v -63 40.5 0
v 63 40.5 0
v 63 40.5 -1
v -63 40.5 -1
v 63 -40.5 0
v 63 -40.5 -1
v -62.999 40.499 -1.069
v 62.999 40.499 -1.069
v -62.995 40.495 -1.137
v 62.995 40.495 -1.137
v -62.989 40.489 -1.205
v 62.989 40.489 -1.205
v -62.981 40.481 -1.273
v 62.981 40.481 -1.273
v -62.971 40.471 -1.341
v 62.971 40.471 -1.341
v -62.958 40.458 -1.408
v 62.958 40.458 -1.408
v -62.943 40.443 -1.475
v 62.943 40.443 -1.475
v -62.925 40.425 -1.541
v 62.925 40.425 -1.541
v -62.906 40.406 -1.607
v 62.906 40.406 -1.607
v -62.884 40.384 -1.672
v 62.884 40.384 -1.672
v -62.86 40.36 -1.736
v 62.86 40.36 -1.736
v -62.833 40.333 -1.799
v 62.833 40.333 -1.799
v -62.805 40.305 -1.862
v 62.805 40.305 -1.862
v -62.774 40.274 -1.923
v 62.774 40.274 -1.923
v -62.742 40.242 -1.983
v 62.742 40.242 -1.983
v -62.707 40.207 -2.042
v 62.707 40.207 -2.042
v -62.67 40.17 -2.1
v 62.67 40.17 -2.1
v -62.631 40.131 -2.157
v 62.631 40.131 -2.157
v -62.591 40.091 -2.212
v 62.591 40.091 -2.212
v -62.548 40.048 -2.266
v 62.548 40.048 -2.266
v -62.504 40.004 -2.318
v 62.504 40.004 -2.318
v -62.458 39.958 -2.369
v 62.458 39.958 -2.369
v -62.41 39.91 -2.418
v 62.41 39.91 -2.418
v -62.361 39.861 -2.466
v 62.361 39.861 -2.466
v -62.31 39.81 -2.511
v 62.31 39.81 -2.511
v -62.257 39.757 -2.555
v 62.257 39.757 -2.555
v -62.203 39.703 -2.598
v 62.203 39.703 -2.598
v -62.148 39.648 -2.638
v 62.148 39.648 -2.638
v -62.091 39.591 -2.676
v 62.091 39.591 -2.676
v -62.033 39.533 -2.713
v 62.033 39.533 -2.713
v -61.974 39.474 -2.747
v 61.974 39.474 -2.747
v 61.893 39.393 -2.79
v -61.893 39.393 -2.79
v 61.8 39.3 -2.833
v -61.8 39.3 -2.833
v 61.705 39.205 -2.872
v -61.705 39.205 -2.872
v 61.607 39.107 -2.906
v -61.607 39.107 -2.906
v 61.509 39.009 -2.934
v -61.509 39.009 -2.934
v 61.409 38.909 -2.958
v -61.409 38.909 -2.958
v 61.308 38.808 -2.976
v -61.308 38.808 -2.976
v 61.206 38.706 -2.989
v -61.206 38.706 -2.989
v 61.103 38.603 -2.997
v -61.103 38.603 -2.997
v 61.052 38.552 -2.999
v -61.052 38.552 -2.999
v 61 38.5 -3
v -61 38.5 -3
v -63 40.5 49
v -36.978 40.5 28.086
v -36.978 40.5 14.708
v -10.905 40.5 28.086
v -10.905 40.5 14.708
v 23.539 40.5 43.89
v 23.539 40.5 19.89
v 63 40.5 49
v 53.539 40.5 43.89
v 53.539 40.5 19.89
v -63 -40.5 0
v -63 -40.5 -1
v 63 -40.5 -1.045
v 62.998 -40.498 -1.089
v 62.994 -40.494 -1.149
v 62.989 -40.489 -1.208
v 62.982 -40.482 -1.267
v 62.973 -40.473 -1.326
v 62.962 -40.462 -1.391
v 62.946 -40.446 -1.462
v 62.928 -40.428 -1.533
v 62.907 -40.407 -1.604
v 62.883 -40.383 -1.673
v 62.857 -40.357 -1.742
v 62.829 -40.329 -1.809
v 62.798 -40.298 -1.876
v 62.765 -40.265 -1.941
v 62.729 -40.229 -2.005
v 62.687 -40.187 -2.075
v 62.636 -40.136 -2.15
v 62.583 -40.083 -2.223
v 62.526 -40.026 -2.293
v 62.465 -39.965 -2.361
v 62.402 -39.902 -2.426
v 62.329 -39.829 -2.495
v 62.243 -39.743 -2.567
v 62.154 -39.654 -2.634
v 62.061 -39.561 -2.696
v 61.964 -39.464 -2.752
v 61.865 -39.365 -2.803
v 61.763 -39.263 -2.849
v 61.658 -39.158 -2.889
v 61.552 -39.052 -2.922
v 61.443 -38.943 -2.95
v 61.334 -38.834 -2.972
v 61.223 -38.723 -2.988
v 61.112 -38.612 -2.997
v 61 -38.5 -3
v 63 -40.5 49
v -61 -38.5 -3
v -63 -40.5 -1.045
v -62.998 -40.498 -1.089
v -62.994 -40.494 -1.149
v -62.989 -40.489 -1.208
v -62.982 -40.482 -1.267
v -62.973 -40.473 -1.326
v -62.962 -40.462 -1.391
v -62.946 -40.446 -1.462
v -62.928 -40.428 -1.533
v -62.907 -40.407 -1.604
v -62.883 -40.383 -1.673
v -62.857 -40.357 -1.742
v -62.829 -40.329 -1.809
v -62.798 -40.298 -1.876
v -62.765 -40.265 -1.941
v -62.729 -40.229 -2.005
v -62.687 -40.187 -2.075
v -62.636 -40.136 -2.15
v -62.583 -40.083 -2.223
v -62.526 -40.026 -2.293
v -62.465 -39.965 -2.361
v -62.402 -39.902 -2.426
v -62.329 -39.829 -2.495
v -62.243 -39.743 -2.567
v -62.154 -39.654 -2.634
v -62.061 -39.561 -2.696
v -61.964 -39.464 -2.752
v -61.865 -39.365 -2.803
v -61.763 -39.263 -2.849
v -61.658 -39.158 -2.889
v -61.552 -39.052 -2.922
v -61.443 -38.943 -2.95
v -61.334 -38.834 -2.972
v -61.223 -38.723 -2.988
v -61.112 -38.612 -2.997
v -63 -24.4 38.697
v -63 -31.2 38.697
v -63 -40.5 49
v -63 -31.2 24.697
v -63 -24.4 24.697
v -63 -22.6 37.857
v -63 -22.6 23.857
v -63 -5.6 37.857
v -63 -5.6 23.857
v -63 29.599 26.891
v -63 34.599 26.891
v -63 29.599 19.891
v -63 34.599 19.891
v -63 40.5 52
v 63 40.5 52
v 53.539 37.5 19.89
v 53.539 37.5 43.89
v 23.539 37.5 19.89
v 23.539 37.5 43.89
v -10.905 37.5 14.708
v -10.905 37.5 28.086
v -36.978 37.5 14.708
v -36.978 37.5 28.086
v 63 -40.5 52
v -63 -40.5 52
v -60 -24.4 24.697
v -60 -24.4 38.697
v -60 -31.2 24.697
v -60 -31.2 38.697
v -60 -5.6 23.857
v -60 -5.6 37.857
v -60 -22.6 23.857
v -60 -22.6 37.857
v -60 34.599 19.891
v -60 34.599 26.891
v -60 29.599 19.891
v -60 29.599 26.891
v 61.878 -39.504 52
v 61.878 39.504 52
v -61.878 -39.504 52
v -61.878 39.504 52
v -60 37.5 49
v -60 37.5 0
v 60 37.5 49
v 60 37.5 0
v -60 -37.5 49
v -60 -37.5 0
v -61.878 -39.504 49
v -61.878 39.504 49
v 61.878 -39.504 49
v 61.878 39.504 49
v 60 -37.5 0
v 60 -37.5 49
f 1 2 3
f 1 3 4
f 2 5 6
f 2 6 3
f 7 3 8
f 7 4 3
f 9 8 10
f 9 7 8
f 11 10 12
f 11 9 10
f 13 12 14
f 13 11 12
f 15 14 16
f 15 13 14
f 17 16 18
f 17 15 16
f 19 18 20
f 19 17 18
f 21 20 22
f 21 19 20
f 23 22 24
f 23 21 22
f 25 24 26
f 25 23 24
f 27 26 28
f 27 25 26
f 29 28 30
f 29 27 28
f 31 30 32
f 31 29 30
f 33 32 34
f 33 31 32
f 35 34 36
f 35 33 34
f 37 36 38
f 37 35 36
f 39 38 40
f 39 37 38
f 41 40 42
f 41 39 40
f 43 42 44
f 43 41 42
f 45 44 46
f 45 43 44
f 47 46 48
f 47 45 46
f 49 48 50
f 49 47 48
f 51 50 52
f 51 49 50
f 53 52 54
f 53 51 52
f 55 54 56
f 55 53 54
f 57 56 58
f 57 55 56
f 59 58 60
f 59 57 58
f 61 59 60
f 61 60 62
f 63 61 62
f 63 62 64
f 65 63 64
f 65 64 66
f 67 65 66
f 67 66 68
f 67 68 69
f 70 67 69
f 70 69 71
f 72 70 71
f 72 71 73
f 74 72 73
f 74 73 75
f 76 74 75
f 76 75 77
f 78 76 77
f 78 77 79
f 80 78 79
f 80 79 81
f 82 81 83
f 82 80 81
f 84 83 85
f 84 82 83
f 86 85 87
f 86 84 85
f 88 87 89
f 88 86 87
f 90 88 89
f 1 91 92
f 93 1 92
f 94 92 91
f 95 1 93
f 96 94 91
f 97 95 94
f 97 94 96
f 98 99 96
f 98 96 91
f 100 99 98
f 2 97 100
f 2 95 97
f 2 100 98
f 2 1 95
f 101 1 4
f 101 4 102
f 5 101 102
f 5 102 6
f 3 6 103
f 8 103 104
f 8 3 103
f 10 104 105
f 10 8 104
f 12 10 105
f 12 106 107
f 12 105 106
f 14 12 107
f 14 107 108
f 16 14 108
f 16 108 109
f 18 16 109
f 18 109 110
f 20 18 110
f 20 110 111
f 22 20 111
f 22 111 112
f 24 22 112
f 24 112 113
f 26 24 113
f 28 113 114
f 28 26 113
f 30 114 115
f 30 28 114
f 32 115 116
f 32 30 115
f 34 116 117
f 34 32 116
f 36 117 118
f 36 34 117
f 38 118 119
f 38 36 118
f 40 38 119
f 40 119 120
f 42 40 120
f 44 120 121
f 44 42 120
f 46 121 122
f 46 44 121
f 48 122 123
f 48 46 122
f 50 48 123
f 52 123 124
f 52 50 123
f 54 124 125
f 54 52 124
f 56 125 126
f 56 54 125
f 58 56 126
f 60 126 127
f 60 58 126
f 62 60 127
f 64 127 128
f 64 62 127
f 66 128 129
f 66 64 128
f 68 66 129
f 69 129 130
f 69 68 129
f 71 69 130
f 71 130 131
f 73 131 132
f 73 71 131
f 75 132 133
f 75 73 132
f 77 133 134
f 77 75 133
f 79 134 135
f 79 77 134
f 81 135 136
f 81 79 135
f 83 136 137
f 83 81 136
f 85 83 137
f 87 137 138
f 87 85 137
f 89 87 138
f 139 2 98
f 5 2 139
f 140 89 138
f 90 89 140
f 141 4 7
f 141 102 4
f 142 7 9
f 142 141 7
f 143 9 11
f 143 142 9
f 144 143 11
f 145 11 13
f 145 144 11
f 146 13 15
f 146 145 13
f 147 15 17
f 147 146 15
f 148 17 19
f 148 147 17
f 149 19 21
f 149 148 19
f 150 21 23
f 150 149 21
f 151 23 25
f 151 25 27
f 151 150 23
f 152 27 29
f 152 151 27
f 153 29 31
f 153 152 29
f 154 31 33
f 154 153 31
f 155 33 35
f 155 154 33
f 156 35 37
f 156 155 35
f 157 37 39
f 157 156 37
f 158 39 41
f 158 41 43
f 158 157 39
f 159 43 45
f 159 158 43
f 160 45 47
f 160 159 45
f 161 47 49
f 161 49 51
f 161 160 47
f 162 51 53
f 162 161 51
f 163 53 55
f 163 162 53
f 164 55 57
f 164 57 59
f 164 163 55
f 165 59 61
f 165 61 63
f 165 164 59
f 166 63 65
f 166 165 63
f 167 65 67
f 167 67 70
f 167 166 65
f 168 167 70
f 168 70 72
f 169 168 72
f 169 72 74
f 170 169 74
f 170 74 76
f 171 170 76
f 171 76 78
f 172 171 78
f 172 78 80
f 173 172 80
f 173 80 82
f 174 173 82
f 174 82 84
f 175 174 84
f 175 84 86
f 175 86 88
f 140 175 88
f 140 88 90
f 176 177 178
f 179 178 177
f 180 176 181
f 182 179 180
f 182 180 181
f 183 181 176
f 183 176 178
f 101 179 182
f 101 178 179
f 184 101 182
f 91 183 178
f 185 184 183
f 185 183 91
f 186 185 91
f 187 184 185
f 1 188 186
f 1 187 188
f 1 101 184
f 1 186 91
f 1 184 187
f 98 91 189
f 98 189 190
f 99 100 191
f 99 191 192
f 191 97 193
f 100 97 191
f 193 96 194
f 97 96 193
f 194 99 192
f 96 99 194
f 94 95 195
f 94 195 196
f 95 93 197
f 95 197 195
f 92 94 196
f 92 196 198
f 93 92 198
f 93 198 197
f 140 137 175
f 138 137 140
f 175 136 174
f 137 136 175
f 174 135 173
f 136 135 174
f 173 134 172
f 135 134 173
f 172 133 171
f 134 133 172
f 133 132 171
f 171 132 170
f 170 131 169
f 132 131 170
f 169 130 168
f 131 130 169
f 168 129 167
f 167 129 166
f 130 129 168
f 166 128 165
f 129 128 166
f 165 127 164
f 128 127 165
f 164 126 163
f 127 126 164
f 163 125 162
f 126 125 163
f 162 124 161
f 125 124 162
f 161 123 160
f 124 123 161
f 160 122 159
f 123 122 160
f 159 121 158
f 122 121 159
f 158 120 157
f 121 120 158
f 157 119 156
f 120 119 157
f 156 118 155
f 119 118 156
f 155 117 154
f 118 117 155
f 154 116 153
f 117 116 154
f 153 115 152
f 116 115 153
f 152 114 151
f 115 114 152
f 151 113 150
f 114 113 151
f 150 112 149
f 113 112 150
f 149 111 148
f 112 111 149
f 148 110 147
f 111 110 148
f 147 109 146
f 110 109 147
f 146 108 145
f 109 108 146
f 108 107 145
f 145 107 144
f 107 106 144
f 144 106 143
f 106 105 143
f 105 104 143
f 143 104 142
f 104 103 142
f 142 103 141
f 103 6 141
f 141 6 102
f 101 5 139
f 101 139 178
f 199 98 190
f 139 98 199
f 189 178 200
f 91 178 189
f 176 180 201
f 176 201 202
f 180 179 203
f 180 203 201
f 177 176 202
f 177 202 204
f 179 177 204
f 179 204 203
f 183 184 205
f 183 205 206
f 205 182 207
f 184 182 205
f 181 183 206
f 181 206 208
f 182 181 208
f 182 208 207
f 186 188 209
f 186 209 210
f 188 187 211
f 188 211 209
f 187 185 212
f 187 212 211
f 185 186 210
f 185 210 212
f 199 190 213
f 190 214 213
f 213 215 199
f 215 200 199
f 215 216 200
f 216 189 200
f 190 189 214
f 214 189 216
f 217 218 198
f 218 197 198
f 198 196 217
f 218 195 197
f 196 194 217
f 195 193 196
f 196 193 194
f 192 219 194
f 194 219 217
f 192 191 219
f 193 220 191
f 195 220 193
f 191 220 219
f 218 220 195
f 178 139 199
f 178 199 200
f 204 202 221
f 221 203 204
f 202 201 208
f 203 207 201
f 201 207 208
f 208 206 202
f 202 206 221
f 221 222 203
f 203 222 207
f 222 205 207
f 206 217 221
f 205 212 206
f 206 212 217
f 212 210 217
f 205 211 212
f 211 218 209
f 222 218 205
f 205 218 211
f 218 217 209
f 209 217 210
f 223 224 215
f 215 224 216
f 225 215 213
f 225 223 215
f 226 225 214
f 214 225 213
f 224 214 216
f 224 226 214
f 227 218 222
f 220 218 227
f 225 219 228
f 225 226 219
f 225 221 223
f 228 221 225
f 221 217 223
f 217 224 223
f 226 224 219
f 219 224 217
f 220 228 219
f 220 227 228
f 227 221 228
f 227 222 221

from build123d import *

# Parameters (mm, degrees)
SKETCH_W        = 126
SKETCH_H        = 81
SKETCH_W_2      = 120
SKETCH_H_2      = 75
PAD_DEPTH       = 49
SKETCH001_W     = 126
SKETCH001_H     = 81
PAD001_DEPTH    = 3
SKETCH006_W     = 26.07241
SKETCH006_H     = 13.378264
POCKET002_DEPTH = 5
SKETCH007_W     = 126
SKETCH007_H     = 81
SKETCH007_W_2   = 123.756296
SKETCH007_H_2   = 79.00857
PAD004_DEPTH    = 3
SKETCH003_W     = 17
SKETCH003_H     = 14
SKETCH003_W_2   = 6.8
POCKET_DEPTH    = 5
SKETCH004_W     = 30
SKETCH004_H     = 24
POCKET003_DEPTH = 10
FILLET_R        = 2
SKETCH008_W     = 5
SKETCH008_H     = 7
POCKET004_DEPTH = 5


with BuildPart() as part:
    # Sketch → Pad (new body)
    with BuildSketch(Plane.XY):
        Rectangle(SKETCH_W, SKETCH_H)
        Rectangle(SKETCH_W_2, SKETCH_H_2, mode=Mode.SUBTRACT)
    extrude(amount=PAD_DEPTH)

    # Sketch001 (on Face9 of Pad) → Pad001 (join)
    with BuildSketch(Plane(origin=(0, 0, 0), x_dir=(1, 0, 0), z_dir=(0, 0, -1))):
        Rectangle(SKETCH001_W, SKETCH001_H)
    extrude(amount=PAD001_DEPTH)

    # Sketch006 → Pocket002 (cut)
    with BuildSketch(Plane(origin=(0, 40.5, 0), x_dir=(-1, 0, 0), z_dir=(0, 1, 0))):
        with Locations((23.94159, 21.396661)):
            Rectangle(SKETCH006_W, SKETCH006_H)
    extrude(amount=-POCKET002_DEPTH, mode=Mode.SUBTRACT)

    # Sketch007 (on Face4 of Pocket002) → Pad004 (join)
    with BuildSketch(Plane.XY.offset(49)):
        Rectangle(SKETCH007_W, SKETCH007_H)
        Rectangle(SKETCH007_W_2, SKETCH007_H_2, mode=Mode.SUBTRACT)
    extrude(amount=PAD004_DEPTH)

    # Sketch003 → Pocket (cut)
    with BuildSketch(Plane(origin=(-63, 0, 0), x_dir=(0, -1, 0), z_dir=(-1, 0, 0))):
        with Locations((14.1, 30.857126)):
            Rectangle(SKETCH003_W, SKETCH003_H)
        with Locations((27.8, 31.697018)):
            Rectangle(SKETCH003_W_2, SKETCH003_H)
    extrude(amount=-POCKET_DEPTH, mode=Mode.SUBTRACT)

    # Sketch004 → Pocket003 (cut)
    with BuildSketch(Plane(origin=(0, 47.5, 0), x_dir=(-1, 0, 0), z_dir=(0, 1, 0))):
        with Locations((-38.538937, 31.890343)):
            Rectangle(SKETCH004_W, SKETCH004_H)
    extrude(amount=-POCKET003_DEPTH, mode=Mode.SUBTRACT)

    # Fillet
    fillet_edges = [part.edges().sort_by_distance(p)[0] for p in [
        (0, -40.5, -3),
        (63, 0, -3),
        (0, 40.5, -3),
        (-63, 0, -3),
    ]]
    fillet(fillet_edges, radius=FILLET_R)

    # Sketch008 (on Face11 of Fillet) → Pocket004 (cut)
    with BuildSketch(Plane(origin=(-63, 0, 0), x_dir=(0, -1, 0), z_dir=(-1, 0, 0))):
        with Locations((-32.098774, 23.391483)):
            Rectangle(SKETCH008_W, SKETCH008_H)
    extrude(amount=-POCKET004_DEPTH, mode=Mode.SUBTRACT)


solid = part.part
